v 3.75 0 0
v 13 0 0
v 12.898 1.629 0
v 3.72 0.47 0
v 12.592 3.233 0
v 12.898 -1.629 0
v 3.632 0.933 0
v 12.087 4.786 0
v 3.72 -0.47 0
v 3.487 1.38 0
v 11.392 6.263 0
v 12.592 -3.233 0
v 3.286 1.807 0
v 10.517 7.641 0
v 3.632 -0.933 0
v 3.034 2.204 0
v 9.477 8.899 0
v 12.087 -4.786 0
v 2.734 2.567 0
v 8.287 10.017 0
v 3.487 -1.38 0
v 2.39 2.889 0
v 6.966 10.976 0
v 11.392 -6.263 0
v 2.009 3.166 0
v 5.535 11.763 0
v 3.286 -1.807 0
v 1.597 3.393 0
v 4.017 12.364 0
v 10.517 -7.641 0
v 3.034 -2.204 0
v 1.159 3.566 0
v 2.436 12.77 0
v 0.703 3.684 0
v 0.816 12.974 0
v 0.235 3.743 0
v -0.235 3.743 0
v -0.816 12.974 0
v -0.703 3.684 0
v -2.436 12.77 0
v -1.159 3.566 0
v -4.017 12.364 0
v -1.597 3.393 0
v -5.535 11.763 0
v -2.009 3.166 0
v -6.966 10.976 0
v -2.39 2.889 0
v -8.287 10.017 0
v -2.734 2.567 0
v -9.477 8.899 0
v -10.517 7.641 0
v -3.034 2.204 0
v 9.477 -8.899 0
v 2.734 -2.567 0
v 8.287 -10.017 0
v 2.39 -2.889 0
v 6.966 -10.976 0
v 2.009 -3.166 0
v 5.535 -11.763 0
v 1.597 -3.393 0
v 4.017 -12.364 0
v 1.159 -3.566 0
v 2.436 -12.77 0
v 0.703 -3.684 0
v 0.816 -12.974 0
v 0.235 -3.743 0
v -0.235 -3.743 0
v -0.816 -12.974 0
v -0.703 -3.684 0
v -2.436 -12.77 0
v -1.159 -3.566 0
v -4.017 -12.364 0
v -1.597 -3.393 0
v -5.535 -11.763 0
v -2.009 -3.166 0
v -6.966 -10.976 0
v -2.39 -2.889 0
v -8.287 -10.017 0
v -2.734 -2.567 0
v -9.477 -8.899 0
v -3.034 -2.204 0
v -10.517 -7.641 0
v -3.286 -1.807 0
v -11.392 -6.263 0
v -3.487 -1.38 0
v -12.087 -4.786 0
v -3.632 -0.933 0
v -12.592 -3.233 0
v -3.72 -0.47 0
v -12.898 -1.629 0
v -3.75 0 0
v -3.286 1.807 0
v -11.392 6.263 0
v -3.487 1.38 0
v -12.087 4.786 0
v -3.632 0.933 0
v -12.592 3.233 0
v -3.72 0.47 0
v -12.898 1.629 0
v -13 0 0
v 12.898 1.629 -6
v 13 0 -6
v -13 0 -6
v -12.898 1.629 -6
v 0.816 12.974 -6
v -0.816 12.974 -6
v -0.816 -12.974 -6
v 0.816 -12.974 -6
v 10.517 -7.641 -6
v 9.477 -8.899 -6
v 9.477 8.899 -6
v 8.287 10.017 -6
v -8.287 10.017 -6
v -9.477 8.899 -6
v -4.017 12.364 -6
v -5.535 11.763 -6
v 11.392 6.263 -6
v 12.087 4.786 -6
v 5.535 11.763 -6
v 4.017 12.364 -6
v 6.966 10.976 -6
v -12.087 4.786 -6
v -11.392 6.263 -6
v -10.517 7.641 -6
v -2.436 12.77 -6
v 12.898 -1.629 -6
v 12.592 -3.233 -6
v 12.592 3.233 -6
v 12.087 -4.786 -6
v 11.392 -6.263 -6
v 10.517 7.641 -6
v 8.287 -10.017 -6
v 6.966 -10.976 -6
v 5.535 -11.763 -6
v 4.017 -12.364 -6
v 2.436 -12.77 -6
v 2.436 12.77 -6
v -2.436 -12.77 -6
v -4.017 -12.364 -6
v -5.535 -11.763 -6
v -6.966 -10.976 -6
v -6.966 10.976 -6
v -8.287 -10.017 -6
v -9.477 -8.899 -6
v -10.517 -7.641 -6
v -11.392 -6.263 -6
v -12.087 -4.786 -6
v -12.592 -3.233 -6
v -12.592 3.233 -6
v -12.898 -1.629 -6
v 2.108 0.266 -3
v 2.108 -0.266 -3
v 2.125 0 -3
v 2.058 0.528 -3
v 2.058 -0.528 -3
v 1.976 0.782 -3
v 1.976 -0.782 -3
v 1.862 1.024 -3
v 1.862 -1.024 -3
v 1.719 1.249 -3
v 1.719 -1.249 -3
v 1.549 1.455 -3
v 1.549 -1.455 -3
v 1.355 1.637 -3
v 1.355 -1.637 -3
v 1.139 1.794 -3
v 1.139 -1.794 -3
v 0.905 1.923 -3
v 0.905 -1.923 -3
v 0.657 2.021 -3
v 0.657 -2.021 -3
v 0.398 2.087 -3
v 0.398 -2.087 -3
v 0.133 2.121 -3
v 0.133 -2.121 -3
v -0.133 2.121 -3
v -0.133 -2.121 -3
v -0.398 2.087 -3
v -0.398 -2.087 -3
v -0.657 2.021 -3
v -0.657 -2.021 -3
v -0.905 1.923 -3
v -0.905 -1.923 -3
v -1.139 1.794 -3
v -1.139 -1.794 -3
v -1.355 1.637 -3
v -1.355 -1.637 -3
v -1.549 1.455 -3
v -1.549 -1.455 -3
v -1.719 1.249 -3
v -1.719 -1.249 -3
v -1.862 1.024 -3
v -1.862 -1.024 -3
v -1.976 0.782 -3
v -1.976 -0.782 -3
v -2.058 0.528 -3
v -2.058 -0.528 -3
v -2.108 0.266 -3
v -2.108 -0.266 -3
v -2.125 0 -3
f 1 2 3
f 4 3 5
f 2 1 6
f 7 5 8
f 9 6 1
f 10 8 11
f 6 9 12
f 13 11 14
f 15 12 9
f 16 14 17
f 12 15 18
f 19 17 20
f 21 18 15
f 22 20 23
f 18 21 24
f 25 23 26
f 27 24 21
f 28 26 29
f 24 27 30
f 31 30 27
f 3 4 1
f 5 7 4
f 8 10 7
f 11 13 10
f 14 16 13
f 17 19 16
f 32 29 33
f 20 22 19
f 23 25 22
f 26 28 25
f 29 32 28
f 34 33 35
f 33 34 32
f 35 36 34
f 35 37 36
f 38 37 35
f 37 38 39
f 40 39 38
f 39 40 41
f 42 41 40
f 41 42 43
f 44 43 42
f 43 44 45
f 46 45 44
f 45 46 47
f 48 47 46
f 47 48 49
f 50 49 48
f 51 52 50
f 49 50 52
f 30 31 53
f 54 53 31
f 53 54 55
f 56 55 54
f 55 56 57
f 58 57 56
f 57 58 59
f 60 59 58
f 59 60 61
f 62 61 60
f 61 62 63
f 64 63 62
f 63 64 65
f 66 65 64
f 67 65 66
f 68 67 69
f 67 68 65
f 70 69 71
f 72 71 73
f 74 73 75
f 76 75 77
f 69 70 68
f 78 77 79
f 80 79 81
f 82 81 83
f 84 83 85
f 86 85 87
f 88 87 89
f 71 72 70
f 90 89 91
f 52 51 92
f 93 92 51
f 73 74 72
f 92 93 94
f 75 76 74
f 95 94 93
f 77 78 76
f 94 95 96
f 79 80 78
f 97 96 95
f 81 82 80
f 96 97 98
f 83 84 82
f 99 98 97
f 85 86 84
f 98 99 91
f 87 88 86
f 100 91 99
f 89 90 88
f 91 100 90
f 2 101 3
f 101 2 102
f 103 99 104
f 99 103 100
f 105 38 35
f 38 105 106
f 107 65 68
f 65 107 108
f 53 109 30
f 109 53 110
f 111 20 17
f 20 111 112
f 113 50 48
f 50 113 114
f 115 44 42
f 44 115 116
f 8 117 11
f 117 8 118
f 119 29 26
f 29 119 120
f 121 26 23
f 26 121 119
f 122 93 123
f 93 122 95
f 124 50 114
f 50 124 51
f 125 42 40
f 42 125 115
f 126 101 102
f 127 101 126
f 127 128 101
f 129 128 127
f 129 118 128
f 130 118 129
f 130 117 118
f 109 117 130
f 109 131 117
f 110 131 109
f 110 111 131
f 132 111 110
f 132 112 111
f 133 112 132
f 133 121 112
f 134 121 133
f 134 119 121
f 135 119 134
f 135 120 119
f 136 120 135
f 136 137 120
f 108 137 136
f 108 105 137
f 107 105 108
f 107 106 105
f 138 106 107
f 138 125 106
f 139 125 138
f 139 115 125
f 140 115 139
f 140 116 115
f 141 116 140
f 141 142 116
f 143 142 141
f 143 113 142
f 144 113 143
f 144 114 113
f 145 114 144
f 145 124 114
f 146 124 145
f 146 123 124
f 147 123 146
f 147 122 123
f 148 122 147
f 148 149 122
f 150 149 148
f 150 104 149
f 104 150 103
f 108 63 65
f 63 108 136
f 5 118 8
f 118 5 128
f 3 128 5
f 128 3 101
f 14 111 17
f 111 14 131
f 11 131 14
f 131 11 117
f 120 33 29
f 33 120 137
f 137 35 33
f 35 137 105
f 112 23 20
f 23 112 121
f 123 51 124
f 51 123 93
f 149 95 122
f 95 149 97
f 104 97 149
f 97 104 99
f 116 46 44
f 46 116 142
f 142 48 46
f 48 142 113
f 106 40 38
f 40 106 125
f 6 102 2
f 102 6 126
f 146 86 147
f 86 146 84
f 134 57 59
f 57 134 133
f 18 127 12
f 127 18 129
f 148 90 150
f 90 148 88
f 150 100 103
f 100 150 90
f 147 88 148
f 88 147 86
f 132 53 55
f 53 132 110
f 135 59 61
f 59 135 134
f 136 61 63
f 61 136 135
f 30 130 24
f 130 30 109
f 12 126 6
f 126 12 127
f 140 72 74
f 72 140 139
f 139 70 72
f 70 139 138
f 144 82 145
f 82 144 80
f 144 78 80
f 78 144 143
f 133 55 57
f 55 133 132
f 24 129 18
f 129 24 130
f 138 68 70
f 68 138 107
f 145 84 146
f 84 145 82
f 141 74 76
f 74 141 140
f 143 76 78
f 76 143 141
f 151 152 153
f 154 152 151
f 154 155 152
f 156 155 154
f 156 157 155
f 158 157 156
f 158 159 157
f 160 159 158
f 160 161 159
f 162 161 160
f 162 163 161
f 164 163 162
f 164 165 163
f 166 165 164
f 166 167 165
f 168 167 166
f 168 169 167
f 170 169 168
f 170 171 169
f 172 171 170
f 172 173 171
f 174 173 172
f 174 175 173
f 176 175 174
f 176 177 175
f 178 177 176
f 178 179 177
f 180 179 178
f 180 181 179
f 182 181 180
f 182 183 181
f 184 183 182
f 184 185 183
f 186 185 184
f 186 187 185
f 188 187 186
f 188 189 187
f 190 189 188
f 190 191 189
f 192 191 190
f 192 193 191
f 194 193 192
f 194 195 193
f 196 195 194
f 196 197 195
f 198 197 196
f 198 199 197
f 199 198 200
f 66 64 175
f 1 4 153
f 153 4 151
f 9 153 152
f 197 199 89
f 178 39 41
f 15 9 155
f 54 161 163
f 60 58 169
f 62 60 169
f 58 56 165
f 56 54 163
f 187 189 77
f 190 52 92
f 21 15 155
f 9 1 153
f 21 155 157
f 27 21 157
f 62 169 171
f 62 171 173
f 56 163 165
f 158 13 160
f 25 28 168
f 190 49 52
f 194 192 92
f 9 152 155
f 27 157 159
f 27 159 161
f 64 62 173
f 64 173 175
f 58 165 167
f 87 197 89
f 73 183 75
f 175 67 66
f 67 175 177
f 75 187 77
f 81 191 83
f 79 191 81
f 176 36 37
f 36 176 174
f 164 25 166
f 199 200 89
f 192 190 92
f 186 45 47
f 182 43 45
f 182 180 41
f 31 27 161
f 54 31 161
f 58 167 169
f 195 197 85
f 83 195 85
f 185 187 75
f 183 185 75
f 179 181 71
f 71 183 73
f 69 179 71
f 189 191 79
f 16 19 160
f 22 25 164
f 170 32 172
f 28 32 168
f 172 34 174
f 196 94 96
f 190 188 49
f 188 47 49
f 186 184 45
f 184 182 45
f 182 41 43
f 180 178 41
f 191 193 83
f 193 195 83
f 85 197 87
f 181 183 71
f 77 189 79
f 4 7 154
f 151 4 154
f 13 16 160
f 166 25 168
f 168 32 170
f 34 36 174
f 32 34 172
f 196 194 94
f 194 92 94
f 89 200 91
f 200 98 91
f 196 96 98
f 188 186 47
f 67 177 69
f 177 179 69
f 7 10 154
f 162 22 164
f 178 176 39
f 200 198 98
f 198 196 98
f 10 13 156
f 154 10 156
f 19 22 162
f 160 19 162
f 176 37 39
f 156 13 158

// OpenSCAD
$fn = 50;


difference() {
	union() {
		translate(v = [0, 0, -3.0000000000]) {
			cylinder(h = 3, r = 10.0000000000);
		}
		translate(v = [0, 0, -6.0000000000]) {
			cylinder(h = 6, r = 13.0000000000);
		}
	}
	union() {
		translate(v = [0, 0, 0]) {
			rotate(a = [0, 0, 0]) {
				difference() {
					union() {
						#translate(v = [0, 0, -3.0000000000]) {
							cylinder(h = 3, r = 2.0000000000);
						}
						#translate(v = [0, 0, -3]) {
							cylinder(h = 3, r = 10.0000000000, r1 = 2.1250000000, r2 = 3.7500000000);
						}
						#translate(v = [0, 0, -3.0000000000]) {
							cylinder(h = 3, r = 2.1250000000);
						}
						#translate(v = [0, 0, -3.0000000000]) {
							cylinder(h = 3, r = 2.0000000000);
						}
					}
					union();
				}
			}
		}
	}
}
